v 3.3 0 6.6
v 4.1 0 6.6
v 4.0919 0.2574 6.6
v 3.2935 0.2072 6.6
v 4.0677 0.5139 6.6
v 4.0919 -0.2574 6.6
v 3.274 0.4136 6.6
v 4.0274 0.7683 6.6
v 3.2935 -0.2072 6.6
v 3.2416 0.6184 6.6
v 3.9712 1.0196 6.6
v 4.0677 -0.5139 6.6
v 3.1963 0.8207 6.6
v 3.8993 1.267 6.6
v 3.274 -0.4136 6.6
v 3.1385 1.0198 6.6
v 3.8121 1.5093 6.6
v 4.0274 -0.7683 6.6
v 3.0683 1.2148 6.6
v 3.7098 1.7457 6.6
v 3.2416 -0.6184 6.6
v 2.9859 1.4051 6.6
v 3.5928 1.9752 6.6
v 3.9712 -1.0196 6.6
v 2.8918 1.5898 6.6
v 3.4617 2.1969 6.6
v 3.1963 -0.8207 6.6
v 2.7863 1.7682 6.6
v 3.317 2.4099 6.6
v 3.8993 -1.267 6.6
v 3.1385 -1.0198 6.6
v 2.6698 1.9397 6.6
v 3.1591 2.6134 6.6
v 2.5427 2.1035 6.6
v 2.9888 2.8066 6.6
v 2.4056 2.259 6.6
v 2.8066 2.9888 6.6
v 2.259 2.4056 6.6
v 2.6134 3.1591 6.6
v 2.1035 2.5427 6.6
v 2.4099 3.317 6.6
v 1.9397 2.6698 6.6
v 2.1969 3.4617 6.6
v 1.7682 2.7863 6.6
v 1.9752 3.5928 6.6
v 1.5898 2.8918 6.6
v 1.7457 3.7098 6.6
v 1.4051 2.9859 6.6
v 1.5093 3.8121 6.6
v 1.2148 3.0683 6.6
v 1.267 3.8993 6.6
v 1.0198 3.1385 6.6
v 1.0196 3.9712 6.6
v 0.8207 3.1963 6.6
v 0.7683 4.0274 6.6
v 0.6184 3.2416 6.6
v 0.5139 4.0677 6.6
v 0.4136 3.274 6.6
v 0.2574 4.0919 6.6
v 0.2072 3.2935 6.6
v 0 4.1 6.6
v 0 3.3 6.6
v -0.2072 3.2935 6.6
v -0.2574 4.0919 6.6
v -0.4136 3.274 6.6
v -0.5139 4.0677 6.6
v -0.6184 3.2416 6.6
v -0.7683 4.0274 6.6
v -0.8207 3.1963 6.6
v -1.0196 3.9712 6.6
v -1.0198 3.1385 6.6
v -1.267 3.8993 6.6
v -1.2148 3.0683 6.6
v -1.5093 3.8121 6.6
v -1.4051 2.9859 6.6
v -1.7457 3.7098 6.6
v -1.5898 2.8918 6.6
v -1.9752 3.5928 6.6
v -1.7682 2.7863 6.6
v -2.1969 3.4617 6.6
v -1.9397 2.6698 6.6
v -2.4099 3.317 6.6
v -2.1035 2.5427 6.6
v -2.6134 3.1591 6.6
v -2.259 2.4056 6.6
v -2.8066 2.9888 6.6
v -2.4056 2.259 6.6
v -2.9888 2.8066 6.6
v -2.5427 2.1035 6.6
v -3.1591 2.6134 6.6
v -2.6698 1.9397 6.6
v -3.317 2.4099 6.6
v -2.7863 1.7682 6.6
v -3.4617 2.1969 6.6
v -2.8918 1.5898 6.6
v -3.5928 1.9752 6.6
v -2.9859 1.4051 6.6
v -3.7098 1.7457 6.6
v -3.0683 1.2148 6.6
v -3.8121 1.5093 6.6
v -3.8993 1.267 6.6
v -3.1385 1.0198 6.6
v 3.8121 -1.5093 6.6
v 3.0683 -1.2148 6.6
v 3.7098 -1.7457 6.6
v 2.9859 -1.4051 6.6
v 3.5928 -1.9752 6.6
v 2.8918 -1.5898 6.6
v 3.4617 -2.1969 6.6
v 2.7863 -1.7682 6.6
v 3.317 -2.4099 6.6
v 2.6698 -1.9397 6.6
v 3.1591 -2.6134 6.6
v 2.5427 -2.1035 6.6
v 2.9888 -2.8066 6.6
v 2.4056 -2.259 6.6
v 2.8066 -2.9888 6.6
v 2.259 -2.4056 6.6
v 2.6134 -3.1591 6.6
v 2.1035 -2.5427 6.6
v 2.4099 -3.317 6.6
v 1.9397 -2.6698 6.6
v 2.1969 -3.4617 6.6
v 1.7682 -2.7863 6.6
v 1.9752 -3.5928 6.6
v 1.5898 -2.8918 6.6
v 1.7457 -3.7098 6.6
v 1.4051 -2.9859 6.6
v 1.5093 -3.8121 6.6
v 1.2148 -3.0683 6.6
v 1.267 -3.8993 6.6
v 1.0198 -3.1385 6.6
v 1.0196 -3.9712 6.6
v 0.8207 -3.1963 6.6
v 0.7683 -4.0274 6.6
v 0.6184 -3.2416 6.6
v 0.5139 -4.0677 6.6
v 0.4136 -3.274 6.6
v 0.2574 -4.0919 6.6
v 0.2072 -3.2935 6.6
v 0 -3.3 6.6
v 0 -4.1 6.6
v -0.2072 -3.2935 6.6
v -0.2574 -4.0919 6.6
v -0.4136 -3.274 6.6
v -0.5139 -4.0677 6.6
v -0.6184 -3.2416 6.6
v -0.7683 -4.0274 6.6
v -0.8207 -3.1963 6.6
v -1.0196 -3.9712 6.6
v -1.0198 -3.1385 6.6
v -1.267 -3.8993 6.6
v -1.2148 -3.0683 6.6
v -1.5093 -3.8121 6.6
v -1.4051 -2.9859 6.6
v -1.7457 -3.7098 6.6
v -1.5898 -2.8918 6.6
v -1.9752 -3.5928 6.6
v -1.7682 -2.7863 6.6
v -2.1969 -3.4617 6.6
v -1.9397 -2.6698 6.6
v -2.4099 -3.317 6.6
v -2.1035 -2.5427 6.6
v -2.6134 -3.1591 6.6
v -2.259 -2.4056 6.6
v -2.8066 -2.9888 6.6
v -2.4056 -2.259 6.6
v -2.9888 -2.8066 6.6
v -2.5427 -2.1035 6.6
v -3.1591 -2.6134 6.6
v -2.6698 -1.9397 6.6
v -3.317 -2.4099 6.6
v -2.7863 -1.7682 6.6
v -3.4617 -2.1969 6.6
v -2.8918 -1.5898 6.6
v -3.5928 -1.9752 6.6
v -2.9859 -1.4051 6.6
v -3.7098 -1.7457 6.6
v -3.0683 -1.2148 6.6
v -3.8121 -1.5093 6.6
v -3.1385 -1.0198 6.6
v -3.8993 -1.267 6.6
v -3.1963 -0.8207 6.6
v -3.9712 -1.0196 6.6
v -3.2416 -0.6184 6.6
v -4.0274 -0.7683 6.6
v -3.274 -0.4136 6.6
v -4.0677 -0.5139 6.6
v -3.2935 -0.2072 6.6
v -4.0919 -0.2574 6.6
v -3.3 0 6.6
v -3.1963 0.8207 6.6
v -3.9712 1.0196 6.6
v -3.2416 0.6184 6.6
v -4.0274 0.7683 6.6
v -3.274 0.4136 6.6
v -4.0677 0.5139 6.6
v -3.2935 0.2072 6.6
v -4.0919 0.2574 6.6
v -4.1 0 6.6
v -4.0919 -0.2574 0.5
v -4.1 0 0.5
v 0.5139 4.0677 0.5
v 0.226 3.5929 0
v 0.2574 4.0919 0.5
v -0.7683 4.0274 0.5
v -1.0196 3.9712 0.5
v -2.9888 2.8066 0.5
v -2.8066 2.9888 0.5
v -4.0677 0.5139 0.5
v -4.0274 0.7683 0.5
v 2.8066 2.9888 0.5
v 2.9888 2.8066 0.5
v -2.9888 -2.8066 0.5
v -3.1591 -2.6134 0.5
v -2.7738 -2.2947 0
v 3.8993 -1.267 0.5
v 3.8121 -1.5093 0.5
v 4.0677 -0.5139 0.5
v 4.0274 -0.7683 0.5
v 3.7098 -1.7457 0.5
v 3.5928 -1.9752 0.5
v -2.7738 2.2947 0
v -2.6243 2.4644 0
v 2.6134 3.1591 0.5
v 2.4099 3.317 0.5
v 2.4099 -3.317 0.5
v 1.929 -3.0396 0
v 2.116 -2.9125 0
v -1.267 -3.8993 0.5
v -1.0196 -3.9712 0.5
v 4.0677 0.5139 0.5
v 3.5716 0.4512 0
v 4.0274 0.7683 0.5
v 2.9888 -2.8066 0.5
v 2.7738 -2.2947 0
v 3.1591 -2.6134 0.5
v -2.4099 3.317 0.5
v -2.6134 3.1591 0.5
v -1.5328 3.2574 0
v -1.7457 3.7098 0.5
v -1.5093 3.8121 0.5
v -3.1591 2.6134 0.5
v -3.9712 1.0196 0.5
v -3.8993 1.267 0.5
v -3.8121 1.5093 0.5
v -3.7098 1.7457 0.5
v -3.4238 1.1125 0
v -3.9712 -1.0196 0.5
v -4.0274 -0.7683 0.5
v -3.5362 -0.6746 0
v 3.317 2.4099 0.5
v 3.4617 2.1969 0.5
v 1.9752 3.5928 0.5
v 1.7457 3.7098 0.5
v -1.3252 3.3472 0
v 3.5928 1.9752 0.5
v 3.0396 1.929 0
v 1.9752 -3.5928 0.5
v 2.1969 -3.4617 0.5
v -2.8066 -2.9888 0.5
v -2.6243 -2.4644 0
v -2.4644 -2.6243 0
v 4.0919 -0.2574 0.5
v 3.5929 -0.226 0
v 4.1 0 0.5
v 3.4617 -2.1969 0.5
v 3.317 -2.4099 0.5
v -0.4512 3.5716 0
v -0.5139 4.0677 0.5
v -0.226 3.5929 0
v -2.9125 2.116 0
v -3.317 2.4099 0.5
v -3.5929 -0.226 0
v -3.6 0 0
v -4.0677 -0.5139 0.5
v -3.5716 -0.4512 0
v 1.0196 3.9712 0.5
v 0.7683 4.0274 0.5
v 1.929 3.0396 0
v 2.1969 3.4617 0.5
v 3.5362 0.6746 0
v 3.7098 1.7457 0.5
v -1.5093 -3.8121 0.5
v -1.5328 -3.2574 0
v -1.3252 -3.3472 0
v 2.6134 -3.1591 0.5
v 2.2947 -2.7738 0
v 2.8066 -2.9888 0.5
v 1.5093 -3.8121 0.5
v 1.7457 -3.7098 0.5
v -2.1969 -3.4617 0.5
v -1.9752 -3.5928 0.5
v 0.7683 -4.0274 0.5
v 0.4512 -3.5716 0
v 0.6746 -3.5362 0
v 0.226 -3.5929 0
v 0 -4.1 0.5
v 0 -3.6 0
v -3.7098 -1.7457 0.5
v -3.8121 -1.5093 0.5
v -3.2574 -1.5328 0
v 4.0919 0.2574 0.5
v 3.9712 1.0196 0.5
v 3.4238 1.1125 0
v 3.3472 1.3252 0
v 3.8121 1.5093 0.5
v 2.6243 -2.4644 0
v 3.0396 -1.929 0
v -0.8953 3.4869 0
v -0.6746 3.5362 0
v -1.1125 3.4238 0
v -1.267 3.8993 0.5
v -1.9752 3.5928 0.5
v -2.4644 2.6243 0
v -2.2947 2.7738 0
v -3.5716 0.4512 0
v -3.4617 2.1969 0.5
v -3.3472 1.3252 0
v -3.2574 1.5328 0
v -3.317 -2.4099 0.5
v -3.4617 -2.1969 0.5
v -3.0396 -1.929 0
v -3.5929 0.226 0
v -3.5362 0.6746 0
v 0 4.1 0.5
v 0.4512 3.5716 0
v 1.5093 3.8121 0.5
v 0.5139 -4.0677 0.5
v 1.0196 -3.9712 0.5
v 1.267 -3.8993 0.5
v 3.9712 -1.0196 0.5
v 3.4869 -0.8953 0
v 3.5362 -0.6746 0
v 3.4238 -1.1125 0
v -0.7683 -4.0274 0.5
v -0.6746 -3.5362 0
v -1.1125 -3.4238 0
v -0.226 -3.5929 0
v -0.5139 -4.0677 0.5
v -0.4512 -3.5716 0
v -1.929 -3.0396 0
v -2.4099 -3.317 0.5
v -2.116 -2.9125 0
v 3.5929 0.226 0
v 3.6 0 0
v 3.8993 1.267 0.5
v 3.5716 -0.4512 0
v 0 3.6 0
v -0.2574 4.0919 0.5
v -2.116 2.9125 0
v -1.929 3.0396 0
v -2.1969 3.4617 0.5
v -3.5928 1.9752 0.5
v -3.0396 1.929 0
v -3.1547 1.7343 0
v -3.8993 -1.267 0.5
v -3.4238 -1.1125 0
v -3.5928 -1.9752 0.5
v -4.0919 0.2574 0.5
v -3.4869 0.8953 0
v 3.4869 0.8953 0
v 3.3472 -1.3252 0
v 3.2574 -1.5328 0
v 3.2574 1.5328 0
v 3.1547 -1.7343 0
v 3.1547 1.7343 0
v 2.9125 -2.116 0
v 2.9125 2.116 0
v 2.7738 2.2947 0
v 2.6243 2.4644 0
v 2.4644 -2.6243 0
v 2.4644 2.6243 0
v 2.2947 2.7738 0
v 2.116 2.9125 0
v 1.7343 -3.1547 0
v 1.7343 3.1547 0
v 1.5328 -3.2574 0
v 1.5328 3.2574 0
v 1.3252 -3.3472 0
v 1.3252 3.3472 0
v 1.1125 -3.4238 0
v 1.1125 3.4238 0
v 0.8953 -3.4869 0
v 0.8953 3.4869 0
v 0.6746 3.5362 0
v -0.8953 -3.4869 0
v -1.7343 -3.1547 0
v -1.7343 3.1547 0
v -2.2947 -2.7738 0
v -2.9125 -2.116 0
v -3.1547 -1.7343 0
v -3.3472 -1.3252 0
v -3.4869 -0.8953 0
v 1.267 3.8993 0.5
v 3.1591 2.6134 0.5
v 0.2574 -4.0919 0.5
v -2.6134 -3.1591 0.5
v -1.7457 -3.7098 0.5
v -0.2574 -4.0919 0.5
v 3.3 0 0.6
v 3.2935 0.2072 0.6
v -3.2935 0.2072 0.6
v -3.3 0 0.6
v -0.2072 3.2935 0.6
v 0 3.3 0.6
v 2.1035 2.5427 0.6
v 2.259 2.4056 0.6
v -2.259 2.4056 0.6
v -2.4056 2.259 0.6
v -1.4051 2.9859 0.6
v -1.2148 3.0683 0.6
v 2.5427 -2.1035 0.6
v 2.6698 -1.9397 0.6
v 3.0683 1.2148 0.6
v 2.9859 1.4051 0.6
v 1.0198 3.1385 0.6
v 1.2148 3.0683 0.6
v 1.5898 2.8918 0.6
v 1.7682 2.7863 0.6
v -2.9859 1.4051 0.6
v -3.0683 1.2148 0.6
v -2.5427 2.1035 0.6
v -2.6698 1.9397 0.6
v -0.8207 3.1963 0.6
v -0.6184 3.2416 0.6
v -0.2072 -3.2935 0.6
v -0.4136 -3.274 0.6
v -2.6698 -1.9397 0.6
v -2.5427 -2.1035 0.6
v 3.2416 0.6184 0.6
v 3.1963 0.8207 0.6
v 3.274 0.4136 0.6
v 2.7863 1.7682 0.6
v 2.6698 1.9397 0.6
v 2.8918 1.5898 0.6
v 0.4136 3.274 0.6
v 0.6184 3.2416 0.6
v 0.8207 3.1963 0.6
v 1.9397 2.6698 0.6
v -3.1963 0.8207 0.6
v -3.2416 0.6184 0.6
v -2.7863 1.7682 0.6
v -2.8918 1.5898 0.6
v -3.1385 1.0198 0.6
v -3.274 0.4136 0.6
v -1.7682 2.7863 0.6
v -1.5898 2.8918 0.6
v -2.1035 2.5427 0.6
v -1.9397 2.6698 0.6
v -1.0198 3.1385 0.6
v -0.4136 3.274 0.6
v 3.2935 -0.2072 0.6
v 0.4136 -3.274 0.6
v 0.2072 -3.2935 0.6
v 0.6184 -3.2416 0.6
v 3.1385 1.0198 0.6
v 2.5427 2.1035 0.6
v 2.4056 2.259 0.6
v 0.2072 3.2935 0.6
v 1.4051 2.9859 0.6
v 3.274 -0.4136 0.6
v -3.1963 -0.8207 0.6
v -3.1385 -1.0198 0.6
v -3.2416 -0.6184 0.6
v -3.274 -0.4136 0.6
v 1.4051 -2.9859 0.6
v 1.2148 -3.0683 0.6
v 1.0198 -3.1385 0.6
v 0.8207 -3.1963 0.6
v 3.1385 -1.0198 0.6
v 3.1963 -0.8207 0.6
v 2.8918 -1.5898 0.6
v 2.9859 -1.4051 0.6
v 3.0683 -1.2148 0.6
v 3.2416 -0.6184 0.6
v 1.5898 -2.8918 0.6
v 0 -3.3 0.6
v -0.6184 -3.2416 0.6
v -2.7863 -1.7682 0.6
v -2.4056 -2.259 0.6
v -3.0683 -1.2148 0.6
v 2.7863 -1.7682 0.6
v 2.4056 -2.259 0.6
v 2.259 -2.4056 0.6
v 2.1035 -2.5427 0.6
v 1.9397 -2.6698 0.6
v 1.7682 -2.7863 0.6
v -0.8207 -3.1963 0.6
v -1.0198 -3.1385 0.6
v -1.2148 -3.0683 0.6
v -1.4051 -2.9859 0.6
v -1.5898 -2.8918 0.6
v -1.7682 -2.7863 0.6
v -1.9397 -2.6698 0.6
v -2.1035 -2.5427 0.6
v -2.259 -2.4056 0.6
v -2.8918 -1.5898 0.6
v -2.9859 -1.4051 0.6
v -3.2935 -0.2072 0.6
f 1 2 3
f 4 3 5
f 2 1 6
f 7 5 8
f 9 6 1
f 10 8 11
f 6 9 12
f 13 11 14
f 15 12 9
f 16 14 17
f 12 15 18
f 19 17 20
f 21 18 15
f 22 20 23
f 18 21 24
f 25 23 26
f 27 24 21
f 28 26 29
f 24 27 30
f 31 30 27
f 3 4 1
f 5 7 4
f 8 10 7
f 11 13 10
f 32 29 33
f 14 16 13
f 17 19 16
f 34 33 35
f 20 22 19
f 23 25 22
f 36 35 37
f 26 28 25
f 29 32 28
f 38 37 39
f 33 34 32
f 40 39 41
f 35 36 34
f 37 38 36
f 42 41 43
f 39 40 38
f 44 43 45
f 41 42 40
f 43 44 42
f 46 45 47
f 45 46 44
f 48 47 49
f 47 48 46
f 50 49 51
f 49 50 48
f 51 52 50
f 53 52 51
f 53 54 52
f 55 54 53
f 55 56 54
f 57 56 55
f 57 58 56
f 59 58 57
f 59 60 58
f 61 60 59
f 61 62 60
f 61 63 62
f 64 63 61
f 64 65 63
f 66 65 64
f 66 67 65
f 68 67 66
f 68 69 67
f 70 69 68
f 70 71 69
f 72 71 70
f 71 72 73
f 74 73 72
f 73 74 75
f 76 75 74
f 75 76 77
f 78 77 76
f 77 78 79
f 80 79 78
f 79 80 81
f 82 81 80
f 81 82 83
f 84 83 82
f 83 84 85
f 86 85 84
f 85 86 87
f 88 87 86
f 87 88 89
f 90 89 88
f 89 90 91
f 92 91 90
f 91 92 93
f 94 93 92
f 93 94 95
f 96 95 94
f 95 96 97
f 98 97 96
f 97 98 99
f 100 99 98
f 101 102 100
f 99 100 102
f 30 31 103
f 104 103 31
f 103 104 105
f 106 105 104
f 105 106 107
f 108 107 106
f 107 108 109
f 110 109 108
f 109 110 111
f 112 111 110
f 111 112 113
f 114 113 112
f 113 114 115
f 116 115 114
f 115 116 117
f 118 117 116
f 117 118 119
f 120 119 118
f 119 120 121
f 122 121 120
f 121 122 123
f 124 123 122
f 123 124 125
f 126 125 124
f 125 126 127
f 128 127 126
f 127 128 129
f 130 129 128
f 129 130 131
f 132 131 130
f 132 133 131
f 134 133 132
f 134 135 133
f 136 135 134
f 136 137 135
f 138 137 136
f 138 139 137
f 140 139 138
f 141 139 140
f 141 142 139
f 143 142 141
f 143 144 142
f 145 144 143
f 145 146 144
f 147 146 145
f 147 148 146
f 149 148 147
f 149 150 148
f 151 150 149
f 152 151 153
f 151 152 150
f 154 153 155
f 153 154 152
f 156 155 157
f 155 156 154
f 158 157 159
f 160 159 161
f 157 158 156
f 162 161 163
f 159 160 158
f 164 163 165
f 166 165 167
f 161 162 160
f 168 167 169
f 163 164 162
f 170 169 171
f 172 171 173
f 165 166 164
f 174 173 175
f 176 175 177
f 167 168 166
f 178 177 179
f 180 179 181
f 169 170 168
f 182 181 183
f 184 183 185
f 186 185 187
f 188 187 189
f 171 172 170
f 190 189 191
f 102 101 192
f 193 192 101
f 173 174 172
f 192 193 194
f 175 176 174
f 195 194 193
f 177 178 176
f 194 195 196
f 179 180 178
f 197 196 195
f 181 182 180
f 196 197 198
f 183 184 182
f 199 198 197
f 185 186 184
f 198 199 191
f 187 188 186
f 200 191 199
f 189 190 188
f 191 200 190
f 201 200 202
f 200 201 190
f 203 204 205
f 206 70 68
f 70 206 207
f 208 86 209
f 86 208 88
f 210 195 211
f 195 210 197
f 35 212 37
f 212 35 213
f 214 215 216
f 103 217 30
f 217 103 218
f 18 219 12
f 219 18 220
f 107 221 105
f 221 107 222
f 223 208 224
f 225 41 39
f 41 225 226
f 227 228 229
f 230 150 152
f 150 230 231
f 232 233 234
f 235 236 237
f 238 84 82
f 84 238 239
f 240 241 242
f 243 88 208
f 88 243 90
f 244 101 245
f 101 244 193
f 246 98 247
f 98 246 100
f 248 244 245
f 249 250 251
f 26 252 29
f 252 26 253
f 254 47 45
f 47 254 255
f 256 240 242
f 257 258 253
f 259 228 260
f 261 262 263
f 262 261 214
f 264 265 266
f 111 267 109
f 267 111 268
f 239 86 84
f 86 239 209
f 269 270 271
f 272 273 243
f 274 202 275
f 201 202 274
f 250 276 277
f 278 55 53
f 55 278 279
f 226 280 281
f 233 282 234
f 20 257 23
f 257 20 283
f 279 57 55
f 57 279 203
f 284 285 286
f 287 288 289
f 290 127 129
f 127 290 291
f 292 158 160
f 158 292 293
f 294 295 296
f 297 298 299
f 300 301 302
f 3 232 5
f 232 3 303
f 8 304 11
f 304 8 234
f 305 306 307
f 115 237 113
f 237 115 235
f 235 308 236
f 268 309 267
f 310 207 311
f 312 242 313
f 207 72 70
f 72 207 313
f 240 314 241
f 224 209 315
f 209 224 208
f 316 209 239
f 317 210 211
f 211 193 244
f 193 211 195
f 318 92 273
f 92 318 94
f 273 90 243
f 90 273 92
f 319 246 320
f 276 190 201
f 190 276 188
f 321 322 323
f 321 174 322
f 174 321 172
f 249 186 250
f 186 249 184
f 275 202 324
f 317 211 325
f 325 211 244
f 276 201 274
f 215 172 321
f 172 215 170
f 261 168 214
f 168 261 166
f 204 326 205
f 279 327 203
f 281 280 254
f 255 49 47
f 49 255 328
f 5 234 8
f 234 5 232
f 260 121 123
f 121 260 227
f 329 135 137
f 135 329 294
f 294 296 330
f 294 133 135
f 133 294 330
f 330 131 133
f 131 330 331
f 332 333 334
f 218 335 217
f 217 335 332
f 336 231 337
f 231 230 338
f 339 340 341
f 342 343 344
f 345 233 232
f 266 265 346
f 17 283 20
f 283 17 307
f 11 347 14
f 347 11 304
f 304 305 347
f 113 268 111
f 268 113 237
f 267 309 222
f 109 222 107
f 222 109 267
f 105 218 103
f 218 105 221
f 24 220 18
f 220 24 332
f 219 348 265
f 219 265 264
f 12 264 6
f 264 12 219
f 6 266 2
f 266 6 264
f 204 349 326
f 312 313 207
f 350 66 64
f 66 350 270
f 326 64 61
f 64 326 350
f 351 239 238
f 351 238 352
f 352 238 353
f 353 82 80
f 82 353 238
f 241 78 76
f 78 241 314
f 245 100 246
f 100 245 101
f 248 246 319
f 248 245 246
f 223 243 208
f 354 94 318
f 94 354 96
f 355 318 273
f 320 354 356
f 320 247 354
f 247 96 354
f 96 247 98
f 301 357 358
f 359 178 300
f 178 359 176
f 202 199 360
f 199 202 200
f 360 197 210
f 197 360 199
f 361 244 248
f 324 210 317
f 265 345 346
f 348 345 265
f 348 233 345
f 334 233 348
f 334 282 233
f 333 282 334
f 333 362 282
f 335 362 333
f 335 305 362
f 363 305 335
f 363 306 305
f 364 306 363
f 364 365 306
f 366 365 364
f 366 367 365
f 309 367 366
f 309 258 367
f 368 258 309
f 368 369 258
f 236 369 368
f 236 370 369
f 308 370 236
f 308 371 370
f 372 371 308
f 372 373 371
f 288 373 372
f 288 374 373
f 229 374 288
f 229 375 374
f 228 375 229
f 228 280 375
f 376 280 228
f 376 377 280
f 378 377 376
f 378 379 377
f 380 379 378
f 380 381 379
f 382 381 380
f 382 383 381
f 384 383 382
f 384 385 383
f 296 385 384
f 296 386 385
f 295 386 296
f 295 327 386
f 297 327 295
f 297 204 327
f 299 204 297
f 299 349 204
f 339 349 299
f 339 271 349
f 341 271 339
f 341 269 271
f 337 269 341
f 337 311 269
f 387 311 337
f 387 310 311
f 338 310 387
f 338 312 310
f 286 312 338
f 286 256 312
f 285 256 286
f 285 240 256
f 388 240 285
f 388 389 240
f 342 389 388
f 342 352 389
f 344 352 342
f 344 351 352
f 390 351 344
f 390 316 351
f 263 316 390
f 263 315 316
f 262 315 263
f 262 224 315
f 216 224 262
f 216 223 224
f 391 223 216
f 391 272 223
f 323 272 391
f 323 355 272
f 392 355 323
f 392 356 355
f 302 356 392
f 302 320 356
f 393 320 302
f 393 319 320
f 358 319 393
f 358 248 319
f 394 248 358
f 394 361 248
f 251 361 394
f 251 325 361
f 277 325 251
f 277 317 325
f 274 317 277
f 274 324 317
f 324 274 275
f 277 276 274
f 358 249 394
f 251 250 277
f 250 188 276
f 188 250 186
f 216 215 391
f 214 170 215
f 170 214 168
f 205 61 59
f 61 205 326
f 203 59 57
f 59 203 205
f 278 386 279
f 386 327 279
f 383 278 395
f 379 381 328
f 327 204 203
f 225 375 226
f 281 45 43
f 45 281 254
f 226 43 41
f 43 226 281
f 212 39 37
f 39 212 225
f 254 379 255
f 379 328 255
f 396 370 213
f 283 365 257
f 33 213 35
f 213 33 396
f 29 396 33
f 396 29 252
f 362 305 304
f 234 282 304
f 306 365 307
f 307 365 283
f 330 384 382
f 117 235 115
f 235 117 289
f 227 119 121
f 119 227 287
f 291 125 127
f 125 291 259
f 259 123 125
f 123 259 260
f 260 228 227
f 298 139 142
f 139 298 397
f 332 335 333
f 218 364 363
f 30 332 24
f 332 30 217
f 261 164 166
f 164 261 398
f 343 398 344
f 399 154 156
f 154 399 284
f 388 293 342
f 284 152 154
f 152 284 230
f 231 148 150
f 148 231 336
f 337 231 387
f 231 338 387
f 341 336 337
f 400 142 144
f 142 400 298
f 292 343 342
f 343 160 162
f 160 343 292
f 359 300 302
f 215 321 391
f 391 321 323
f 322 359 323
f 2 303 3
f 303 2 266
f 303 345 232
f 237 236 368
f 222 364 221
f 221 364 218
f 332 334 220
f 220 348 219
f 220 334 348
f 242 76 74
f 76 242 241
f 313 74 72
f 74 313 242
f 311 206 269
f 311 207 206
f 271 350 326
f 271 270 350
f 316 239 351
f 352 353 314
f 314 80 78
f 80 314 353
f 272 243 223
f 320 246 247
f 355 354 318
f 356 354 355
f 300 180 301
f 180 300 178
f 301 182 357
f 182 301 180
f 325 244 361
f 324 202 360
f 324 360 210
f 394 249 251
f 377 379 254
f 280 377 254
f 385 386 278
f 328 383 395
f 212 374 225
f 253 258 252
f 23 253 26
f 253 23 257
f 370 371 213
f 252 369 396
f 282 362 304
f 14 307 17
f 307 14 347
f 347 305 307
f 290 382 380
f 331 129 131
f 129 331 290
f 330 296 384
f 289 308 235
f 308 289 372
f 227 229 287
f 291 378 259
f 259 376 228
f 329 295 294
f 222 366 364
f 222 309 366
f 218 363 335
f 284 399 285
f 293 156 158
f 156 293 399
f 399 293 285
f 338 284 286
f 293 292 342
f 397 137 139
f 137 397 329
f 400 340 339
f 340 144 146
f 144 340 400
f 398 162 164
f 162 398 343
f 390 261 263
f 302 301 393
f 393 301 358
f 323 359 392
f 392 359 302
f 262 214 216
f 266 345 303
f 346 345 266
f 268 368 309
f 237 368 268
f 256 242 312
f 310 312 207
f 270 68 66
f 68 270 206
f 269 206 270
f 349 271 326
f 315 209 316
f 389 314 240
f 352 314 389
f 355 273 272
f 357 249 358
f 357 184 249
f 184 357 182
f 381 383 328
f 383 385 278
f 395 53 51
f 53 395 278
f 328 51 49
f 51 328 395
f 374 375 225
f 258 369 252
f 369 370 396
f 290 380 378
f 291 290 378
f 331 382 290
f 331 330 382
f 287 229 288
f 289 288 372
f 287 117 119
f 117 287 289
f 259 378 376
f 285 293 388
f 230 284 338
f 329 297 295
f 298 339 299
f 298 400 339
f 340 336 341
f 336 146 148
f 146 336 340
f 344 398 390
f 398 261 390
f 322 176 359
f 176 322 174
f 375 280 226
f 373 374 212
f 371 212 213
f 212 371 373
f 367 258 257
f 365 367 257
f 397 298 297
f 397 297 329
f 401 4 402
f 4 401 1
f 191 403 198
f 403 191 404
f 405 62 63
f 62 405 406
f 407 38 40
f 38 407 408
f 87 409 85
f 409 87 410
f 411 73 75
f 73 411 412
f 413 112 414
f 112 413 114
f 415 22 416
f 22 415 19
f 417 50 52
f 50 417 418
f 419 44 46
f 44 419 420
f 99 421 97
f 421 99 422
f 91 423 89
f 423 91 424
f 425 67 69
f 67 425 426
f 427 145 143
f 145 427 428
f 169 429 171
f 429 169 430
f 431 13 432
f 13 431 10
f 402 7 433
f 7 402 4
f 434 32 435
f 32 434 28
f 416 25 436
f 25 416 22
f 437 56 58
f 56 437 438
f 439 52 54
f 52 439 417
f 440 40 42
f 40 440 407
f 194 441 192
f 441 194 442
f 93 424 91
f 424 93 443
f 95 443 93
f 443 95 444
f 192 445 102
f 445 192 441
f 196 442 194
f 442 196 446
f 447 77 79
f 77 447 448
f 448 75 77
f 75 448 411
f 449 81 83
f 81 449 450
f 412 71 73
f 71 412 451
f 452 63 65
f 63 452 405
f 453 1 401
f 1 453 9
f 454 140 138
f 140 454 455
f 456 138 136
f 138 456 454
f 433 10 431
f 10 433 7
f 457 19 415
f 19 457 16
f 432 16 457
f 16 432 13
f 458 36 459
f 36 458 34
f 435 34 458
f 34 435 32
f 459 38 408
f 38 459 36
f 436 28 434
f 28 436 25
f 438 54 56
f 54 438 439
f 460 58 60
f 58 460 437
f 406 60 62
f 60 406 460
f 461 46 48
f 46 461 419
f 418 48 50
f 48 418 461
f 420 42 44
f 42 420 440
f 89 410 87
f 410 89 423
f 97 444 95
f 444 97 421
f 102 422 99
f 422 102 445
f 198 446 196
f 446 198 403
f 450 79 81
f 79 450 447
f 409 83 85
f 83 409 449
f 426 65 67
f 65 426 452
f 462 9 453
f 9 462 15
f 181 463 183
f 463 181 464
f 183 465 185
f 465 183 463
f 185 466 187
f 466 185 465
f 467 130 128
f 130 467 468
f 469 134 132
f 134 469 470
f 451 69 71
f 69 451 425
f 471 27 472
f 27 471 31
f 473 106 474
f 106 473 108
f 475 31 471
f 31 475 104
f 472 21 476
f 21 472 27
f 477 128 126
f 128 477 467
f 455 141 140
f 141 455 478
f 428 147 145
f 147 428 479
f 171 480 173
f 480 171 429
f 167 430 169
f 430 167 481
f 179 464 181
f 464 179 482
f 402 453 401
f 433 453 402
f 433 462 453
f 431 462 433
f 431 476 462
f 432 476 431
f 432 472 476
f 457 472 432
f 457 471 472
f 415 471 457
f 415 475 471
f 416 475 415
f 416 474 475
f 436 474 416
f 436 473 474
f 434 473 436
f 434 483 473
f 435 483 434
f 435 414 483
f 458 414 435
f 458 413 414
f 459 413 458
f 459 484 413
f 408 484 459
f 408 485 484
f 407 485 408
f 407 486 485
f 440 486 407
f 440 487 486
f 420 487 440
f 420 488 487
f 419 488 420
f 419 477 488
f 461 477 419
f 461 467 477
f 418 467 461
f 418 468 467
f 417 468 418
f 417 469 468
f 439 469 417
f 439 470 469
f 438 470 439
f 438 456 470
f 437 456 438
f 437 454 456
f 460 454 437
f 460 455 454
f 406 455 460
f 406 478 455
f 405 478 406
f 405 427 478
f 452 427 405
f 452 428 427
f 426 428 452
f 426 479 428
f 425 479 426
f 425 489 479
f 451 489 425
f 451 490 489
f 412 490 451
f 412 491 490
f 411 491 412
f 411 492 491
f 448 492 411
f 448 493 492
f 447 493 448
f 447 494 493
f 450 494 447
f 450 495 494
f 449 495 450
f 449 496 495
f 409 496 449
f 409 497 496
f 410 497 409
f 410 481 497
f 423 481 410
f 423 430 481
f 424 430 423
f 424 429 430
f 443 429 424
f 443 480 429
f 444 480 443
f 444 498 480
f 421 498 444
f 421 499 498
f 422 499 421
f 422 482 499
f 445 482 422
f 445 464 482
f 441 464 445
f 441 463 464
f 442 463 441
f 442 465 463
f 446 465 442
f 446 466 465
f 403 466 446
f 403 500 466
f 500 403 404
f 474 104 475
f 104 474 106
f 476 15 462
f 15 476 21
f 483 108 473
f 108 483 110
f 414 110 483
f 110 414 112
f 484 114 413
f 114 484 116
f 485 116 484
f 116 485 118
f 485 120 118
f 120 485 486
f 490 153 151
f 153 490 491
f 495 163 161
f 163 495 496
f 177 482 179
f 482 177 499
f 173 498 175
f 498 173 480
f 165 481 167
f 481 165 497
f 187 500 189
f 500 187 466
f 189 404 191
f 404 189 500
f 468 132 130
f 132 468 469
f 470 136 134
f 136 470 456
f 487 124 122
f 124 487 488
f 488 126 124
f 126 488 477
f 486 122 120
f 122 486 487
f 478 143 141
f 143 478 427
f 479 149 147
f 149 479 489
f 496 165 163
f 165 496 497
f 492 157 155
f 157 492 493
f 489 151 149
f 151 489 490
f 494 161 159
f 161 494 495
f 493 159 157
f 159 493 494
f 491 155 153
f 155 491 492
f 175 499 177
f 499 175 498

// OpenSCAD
// file: ../lib/extensions.scad
/*
 * Copyright (c) 2019, Vigibot
 * All rights reserved.
 * 
 * Redistribution and use in source and binary forms, with or without modification, are permitted provided that the following conditions are met:
 *   * Redistributions of source code must retain the above copyright notice, this list of conditions and the following disclaimer.
 *   * Redistributions in binary form must reproduce the above copyright notice, this list of conditions and the following disclaimer in the documentation and/or other materials provided with the distribution.
 * 
 * Description: OpenSCAD extensions to scad language
 * Design:      Gilles Bouissac
 * Author:      Gilles Bouissac
 */


// Render children modules with mirroring on plane [XZ]
//   Each child is rendered 2 times
module mirrorX( mirrorx=true ) {
    mirror([0, 0, 0])
        children();
    if ( mirrorx )
        mirror([0, 1, 0])
            children();
}

// Render children modules with mirroring on plane [YZ]
//   Each child is rendered 2 times
module mirrorY( mirrory=true ) {
    mirror([0, 0, 0])
        children();
    if ( mirrory )
        mirror([1, 0, 0])
            children();
}

// Render children modules with mirroring on plane [XY]
//   Each child is rendered 2 times
module mirrorZ( mirrorz=true ) {
    mirror([0, 0, 0])
        children();
    if ( mirrorz )
        mirror([0, 0, 1])
            children();
}

// Render children modules with mirroring on X then mirroring on Y
//   Each child is rendered 4 times
module mirrorXY( mirrorx=true, mirrory=true ) {
    mirrorY(mirrory)
        mirrorX(mirrorx)
            children();
}

// flatten([[0,1],[2,3]]) => [0,1,2,3]
function flatten(list) = [ for (i = list, v = i) v ];

// ManiFold Guard
MFG = 0.01;
function mfg(mult=1) = is_undef($mfg) ? mult*MFG : mult*$mfg;
// main file
/*
 * Copyright (c) 2019, Vigibot
 * All rights reserved.
 * 
 * Redistribution and use in source and binary forms, with or without modification, are permitted provided that the following conditions are met:
 *   * Redistributions of source code must retain the above copyright notice, this list of conditions and the following disclaimer.
 *   * Redistributions in binary form must reproduce the above copyright notice, this list of conditions and the following disclaimer in the documentation and/or other materials provided with the distribution.
 * 
 * Description: OpenSCAD design for Vigibot photoresistor cap
 * Design:      Quillès Jonathan / Pascal Piazzalungua
 * Author:      Gilles Bouissac
 */

use <../lib/extensions.scad>

// ----------------------------------------
//                  API
// ----------------------------------------

module photoResistorCap() {
    difference() {
        photoResistorCapShape();
        photoResistorCapHoles();
    }
}

// ----------------------------------------
//            Implementation
// ----------------------------------------

BEVEL  = 0.5 ;

CAP_SZ = 6.6 ;
CAP_D  = 8.2 ;

CAP_HOLE_D  = 6.6 ;
CAP_HOLE_SZ = 6.0;

module photoResistorCapShape() {
    rotate_extrude() {
        polygon([
            [0,0],
            [CAP_D/2-BEVEL,0],
            [CAP_D/2,BEVEL],
            [CAP_D/2,CAP_SZ],
            [0,CAP_SZ],
            [0,0]
        ]);
    }
}

module photoResistorCapHoles() {
    translate( [0,0,CAP_SZ-CAP_HOLE_SZ] )
        cylinder( r=CAP_HOLE_D/2, h=CAP_HOLE_SZ+1 );
}

// ----------------------------------------
//                 Showcase
// ----------------------------------------
photoResistorCap ($fn=100);

//%import( "../../stl/photoresistor_cap.stl" );
